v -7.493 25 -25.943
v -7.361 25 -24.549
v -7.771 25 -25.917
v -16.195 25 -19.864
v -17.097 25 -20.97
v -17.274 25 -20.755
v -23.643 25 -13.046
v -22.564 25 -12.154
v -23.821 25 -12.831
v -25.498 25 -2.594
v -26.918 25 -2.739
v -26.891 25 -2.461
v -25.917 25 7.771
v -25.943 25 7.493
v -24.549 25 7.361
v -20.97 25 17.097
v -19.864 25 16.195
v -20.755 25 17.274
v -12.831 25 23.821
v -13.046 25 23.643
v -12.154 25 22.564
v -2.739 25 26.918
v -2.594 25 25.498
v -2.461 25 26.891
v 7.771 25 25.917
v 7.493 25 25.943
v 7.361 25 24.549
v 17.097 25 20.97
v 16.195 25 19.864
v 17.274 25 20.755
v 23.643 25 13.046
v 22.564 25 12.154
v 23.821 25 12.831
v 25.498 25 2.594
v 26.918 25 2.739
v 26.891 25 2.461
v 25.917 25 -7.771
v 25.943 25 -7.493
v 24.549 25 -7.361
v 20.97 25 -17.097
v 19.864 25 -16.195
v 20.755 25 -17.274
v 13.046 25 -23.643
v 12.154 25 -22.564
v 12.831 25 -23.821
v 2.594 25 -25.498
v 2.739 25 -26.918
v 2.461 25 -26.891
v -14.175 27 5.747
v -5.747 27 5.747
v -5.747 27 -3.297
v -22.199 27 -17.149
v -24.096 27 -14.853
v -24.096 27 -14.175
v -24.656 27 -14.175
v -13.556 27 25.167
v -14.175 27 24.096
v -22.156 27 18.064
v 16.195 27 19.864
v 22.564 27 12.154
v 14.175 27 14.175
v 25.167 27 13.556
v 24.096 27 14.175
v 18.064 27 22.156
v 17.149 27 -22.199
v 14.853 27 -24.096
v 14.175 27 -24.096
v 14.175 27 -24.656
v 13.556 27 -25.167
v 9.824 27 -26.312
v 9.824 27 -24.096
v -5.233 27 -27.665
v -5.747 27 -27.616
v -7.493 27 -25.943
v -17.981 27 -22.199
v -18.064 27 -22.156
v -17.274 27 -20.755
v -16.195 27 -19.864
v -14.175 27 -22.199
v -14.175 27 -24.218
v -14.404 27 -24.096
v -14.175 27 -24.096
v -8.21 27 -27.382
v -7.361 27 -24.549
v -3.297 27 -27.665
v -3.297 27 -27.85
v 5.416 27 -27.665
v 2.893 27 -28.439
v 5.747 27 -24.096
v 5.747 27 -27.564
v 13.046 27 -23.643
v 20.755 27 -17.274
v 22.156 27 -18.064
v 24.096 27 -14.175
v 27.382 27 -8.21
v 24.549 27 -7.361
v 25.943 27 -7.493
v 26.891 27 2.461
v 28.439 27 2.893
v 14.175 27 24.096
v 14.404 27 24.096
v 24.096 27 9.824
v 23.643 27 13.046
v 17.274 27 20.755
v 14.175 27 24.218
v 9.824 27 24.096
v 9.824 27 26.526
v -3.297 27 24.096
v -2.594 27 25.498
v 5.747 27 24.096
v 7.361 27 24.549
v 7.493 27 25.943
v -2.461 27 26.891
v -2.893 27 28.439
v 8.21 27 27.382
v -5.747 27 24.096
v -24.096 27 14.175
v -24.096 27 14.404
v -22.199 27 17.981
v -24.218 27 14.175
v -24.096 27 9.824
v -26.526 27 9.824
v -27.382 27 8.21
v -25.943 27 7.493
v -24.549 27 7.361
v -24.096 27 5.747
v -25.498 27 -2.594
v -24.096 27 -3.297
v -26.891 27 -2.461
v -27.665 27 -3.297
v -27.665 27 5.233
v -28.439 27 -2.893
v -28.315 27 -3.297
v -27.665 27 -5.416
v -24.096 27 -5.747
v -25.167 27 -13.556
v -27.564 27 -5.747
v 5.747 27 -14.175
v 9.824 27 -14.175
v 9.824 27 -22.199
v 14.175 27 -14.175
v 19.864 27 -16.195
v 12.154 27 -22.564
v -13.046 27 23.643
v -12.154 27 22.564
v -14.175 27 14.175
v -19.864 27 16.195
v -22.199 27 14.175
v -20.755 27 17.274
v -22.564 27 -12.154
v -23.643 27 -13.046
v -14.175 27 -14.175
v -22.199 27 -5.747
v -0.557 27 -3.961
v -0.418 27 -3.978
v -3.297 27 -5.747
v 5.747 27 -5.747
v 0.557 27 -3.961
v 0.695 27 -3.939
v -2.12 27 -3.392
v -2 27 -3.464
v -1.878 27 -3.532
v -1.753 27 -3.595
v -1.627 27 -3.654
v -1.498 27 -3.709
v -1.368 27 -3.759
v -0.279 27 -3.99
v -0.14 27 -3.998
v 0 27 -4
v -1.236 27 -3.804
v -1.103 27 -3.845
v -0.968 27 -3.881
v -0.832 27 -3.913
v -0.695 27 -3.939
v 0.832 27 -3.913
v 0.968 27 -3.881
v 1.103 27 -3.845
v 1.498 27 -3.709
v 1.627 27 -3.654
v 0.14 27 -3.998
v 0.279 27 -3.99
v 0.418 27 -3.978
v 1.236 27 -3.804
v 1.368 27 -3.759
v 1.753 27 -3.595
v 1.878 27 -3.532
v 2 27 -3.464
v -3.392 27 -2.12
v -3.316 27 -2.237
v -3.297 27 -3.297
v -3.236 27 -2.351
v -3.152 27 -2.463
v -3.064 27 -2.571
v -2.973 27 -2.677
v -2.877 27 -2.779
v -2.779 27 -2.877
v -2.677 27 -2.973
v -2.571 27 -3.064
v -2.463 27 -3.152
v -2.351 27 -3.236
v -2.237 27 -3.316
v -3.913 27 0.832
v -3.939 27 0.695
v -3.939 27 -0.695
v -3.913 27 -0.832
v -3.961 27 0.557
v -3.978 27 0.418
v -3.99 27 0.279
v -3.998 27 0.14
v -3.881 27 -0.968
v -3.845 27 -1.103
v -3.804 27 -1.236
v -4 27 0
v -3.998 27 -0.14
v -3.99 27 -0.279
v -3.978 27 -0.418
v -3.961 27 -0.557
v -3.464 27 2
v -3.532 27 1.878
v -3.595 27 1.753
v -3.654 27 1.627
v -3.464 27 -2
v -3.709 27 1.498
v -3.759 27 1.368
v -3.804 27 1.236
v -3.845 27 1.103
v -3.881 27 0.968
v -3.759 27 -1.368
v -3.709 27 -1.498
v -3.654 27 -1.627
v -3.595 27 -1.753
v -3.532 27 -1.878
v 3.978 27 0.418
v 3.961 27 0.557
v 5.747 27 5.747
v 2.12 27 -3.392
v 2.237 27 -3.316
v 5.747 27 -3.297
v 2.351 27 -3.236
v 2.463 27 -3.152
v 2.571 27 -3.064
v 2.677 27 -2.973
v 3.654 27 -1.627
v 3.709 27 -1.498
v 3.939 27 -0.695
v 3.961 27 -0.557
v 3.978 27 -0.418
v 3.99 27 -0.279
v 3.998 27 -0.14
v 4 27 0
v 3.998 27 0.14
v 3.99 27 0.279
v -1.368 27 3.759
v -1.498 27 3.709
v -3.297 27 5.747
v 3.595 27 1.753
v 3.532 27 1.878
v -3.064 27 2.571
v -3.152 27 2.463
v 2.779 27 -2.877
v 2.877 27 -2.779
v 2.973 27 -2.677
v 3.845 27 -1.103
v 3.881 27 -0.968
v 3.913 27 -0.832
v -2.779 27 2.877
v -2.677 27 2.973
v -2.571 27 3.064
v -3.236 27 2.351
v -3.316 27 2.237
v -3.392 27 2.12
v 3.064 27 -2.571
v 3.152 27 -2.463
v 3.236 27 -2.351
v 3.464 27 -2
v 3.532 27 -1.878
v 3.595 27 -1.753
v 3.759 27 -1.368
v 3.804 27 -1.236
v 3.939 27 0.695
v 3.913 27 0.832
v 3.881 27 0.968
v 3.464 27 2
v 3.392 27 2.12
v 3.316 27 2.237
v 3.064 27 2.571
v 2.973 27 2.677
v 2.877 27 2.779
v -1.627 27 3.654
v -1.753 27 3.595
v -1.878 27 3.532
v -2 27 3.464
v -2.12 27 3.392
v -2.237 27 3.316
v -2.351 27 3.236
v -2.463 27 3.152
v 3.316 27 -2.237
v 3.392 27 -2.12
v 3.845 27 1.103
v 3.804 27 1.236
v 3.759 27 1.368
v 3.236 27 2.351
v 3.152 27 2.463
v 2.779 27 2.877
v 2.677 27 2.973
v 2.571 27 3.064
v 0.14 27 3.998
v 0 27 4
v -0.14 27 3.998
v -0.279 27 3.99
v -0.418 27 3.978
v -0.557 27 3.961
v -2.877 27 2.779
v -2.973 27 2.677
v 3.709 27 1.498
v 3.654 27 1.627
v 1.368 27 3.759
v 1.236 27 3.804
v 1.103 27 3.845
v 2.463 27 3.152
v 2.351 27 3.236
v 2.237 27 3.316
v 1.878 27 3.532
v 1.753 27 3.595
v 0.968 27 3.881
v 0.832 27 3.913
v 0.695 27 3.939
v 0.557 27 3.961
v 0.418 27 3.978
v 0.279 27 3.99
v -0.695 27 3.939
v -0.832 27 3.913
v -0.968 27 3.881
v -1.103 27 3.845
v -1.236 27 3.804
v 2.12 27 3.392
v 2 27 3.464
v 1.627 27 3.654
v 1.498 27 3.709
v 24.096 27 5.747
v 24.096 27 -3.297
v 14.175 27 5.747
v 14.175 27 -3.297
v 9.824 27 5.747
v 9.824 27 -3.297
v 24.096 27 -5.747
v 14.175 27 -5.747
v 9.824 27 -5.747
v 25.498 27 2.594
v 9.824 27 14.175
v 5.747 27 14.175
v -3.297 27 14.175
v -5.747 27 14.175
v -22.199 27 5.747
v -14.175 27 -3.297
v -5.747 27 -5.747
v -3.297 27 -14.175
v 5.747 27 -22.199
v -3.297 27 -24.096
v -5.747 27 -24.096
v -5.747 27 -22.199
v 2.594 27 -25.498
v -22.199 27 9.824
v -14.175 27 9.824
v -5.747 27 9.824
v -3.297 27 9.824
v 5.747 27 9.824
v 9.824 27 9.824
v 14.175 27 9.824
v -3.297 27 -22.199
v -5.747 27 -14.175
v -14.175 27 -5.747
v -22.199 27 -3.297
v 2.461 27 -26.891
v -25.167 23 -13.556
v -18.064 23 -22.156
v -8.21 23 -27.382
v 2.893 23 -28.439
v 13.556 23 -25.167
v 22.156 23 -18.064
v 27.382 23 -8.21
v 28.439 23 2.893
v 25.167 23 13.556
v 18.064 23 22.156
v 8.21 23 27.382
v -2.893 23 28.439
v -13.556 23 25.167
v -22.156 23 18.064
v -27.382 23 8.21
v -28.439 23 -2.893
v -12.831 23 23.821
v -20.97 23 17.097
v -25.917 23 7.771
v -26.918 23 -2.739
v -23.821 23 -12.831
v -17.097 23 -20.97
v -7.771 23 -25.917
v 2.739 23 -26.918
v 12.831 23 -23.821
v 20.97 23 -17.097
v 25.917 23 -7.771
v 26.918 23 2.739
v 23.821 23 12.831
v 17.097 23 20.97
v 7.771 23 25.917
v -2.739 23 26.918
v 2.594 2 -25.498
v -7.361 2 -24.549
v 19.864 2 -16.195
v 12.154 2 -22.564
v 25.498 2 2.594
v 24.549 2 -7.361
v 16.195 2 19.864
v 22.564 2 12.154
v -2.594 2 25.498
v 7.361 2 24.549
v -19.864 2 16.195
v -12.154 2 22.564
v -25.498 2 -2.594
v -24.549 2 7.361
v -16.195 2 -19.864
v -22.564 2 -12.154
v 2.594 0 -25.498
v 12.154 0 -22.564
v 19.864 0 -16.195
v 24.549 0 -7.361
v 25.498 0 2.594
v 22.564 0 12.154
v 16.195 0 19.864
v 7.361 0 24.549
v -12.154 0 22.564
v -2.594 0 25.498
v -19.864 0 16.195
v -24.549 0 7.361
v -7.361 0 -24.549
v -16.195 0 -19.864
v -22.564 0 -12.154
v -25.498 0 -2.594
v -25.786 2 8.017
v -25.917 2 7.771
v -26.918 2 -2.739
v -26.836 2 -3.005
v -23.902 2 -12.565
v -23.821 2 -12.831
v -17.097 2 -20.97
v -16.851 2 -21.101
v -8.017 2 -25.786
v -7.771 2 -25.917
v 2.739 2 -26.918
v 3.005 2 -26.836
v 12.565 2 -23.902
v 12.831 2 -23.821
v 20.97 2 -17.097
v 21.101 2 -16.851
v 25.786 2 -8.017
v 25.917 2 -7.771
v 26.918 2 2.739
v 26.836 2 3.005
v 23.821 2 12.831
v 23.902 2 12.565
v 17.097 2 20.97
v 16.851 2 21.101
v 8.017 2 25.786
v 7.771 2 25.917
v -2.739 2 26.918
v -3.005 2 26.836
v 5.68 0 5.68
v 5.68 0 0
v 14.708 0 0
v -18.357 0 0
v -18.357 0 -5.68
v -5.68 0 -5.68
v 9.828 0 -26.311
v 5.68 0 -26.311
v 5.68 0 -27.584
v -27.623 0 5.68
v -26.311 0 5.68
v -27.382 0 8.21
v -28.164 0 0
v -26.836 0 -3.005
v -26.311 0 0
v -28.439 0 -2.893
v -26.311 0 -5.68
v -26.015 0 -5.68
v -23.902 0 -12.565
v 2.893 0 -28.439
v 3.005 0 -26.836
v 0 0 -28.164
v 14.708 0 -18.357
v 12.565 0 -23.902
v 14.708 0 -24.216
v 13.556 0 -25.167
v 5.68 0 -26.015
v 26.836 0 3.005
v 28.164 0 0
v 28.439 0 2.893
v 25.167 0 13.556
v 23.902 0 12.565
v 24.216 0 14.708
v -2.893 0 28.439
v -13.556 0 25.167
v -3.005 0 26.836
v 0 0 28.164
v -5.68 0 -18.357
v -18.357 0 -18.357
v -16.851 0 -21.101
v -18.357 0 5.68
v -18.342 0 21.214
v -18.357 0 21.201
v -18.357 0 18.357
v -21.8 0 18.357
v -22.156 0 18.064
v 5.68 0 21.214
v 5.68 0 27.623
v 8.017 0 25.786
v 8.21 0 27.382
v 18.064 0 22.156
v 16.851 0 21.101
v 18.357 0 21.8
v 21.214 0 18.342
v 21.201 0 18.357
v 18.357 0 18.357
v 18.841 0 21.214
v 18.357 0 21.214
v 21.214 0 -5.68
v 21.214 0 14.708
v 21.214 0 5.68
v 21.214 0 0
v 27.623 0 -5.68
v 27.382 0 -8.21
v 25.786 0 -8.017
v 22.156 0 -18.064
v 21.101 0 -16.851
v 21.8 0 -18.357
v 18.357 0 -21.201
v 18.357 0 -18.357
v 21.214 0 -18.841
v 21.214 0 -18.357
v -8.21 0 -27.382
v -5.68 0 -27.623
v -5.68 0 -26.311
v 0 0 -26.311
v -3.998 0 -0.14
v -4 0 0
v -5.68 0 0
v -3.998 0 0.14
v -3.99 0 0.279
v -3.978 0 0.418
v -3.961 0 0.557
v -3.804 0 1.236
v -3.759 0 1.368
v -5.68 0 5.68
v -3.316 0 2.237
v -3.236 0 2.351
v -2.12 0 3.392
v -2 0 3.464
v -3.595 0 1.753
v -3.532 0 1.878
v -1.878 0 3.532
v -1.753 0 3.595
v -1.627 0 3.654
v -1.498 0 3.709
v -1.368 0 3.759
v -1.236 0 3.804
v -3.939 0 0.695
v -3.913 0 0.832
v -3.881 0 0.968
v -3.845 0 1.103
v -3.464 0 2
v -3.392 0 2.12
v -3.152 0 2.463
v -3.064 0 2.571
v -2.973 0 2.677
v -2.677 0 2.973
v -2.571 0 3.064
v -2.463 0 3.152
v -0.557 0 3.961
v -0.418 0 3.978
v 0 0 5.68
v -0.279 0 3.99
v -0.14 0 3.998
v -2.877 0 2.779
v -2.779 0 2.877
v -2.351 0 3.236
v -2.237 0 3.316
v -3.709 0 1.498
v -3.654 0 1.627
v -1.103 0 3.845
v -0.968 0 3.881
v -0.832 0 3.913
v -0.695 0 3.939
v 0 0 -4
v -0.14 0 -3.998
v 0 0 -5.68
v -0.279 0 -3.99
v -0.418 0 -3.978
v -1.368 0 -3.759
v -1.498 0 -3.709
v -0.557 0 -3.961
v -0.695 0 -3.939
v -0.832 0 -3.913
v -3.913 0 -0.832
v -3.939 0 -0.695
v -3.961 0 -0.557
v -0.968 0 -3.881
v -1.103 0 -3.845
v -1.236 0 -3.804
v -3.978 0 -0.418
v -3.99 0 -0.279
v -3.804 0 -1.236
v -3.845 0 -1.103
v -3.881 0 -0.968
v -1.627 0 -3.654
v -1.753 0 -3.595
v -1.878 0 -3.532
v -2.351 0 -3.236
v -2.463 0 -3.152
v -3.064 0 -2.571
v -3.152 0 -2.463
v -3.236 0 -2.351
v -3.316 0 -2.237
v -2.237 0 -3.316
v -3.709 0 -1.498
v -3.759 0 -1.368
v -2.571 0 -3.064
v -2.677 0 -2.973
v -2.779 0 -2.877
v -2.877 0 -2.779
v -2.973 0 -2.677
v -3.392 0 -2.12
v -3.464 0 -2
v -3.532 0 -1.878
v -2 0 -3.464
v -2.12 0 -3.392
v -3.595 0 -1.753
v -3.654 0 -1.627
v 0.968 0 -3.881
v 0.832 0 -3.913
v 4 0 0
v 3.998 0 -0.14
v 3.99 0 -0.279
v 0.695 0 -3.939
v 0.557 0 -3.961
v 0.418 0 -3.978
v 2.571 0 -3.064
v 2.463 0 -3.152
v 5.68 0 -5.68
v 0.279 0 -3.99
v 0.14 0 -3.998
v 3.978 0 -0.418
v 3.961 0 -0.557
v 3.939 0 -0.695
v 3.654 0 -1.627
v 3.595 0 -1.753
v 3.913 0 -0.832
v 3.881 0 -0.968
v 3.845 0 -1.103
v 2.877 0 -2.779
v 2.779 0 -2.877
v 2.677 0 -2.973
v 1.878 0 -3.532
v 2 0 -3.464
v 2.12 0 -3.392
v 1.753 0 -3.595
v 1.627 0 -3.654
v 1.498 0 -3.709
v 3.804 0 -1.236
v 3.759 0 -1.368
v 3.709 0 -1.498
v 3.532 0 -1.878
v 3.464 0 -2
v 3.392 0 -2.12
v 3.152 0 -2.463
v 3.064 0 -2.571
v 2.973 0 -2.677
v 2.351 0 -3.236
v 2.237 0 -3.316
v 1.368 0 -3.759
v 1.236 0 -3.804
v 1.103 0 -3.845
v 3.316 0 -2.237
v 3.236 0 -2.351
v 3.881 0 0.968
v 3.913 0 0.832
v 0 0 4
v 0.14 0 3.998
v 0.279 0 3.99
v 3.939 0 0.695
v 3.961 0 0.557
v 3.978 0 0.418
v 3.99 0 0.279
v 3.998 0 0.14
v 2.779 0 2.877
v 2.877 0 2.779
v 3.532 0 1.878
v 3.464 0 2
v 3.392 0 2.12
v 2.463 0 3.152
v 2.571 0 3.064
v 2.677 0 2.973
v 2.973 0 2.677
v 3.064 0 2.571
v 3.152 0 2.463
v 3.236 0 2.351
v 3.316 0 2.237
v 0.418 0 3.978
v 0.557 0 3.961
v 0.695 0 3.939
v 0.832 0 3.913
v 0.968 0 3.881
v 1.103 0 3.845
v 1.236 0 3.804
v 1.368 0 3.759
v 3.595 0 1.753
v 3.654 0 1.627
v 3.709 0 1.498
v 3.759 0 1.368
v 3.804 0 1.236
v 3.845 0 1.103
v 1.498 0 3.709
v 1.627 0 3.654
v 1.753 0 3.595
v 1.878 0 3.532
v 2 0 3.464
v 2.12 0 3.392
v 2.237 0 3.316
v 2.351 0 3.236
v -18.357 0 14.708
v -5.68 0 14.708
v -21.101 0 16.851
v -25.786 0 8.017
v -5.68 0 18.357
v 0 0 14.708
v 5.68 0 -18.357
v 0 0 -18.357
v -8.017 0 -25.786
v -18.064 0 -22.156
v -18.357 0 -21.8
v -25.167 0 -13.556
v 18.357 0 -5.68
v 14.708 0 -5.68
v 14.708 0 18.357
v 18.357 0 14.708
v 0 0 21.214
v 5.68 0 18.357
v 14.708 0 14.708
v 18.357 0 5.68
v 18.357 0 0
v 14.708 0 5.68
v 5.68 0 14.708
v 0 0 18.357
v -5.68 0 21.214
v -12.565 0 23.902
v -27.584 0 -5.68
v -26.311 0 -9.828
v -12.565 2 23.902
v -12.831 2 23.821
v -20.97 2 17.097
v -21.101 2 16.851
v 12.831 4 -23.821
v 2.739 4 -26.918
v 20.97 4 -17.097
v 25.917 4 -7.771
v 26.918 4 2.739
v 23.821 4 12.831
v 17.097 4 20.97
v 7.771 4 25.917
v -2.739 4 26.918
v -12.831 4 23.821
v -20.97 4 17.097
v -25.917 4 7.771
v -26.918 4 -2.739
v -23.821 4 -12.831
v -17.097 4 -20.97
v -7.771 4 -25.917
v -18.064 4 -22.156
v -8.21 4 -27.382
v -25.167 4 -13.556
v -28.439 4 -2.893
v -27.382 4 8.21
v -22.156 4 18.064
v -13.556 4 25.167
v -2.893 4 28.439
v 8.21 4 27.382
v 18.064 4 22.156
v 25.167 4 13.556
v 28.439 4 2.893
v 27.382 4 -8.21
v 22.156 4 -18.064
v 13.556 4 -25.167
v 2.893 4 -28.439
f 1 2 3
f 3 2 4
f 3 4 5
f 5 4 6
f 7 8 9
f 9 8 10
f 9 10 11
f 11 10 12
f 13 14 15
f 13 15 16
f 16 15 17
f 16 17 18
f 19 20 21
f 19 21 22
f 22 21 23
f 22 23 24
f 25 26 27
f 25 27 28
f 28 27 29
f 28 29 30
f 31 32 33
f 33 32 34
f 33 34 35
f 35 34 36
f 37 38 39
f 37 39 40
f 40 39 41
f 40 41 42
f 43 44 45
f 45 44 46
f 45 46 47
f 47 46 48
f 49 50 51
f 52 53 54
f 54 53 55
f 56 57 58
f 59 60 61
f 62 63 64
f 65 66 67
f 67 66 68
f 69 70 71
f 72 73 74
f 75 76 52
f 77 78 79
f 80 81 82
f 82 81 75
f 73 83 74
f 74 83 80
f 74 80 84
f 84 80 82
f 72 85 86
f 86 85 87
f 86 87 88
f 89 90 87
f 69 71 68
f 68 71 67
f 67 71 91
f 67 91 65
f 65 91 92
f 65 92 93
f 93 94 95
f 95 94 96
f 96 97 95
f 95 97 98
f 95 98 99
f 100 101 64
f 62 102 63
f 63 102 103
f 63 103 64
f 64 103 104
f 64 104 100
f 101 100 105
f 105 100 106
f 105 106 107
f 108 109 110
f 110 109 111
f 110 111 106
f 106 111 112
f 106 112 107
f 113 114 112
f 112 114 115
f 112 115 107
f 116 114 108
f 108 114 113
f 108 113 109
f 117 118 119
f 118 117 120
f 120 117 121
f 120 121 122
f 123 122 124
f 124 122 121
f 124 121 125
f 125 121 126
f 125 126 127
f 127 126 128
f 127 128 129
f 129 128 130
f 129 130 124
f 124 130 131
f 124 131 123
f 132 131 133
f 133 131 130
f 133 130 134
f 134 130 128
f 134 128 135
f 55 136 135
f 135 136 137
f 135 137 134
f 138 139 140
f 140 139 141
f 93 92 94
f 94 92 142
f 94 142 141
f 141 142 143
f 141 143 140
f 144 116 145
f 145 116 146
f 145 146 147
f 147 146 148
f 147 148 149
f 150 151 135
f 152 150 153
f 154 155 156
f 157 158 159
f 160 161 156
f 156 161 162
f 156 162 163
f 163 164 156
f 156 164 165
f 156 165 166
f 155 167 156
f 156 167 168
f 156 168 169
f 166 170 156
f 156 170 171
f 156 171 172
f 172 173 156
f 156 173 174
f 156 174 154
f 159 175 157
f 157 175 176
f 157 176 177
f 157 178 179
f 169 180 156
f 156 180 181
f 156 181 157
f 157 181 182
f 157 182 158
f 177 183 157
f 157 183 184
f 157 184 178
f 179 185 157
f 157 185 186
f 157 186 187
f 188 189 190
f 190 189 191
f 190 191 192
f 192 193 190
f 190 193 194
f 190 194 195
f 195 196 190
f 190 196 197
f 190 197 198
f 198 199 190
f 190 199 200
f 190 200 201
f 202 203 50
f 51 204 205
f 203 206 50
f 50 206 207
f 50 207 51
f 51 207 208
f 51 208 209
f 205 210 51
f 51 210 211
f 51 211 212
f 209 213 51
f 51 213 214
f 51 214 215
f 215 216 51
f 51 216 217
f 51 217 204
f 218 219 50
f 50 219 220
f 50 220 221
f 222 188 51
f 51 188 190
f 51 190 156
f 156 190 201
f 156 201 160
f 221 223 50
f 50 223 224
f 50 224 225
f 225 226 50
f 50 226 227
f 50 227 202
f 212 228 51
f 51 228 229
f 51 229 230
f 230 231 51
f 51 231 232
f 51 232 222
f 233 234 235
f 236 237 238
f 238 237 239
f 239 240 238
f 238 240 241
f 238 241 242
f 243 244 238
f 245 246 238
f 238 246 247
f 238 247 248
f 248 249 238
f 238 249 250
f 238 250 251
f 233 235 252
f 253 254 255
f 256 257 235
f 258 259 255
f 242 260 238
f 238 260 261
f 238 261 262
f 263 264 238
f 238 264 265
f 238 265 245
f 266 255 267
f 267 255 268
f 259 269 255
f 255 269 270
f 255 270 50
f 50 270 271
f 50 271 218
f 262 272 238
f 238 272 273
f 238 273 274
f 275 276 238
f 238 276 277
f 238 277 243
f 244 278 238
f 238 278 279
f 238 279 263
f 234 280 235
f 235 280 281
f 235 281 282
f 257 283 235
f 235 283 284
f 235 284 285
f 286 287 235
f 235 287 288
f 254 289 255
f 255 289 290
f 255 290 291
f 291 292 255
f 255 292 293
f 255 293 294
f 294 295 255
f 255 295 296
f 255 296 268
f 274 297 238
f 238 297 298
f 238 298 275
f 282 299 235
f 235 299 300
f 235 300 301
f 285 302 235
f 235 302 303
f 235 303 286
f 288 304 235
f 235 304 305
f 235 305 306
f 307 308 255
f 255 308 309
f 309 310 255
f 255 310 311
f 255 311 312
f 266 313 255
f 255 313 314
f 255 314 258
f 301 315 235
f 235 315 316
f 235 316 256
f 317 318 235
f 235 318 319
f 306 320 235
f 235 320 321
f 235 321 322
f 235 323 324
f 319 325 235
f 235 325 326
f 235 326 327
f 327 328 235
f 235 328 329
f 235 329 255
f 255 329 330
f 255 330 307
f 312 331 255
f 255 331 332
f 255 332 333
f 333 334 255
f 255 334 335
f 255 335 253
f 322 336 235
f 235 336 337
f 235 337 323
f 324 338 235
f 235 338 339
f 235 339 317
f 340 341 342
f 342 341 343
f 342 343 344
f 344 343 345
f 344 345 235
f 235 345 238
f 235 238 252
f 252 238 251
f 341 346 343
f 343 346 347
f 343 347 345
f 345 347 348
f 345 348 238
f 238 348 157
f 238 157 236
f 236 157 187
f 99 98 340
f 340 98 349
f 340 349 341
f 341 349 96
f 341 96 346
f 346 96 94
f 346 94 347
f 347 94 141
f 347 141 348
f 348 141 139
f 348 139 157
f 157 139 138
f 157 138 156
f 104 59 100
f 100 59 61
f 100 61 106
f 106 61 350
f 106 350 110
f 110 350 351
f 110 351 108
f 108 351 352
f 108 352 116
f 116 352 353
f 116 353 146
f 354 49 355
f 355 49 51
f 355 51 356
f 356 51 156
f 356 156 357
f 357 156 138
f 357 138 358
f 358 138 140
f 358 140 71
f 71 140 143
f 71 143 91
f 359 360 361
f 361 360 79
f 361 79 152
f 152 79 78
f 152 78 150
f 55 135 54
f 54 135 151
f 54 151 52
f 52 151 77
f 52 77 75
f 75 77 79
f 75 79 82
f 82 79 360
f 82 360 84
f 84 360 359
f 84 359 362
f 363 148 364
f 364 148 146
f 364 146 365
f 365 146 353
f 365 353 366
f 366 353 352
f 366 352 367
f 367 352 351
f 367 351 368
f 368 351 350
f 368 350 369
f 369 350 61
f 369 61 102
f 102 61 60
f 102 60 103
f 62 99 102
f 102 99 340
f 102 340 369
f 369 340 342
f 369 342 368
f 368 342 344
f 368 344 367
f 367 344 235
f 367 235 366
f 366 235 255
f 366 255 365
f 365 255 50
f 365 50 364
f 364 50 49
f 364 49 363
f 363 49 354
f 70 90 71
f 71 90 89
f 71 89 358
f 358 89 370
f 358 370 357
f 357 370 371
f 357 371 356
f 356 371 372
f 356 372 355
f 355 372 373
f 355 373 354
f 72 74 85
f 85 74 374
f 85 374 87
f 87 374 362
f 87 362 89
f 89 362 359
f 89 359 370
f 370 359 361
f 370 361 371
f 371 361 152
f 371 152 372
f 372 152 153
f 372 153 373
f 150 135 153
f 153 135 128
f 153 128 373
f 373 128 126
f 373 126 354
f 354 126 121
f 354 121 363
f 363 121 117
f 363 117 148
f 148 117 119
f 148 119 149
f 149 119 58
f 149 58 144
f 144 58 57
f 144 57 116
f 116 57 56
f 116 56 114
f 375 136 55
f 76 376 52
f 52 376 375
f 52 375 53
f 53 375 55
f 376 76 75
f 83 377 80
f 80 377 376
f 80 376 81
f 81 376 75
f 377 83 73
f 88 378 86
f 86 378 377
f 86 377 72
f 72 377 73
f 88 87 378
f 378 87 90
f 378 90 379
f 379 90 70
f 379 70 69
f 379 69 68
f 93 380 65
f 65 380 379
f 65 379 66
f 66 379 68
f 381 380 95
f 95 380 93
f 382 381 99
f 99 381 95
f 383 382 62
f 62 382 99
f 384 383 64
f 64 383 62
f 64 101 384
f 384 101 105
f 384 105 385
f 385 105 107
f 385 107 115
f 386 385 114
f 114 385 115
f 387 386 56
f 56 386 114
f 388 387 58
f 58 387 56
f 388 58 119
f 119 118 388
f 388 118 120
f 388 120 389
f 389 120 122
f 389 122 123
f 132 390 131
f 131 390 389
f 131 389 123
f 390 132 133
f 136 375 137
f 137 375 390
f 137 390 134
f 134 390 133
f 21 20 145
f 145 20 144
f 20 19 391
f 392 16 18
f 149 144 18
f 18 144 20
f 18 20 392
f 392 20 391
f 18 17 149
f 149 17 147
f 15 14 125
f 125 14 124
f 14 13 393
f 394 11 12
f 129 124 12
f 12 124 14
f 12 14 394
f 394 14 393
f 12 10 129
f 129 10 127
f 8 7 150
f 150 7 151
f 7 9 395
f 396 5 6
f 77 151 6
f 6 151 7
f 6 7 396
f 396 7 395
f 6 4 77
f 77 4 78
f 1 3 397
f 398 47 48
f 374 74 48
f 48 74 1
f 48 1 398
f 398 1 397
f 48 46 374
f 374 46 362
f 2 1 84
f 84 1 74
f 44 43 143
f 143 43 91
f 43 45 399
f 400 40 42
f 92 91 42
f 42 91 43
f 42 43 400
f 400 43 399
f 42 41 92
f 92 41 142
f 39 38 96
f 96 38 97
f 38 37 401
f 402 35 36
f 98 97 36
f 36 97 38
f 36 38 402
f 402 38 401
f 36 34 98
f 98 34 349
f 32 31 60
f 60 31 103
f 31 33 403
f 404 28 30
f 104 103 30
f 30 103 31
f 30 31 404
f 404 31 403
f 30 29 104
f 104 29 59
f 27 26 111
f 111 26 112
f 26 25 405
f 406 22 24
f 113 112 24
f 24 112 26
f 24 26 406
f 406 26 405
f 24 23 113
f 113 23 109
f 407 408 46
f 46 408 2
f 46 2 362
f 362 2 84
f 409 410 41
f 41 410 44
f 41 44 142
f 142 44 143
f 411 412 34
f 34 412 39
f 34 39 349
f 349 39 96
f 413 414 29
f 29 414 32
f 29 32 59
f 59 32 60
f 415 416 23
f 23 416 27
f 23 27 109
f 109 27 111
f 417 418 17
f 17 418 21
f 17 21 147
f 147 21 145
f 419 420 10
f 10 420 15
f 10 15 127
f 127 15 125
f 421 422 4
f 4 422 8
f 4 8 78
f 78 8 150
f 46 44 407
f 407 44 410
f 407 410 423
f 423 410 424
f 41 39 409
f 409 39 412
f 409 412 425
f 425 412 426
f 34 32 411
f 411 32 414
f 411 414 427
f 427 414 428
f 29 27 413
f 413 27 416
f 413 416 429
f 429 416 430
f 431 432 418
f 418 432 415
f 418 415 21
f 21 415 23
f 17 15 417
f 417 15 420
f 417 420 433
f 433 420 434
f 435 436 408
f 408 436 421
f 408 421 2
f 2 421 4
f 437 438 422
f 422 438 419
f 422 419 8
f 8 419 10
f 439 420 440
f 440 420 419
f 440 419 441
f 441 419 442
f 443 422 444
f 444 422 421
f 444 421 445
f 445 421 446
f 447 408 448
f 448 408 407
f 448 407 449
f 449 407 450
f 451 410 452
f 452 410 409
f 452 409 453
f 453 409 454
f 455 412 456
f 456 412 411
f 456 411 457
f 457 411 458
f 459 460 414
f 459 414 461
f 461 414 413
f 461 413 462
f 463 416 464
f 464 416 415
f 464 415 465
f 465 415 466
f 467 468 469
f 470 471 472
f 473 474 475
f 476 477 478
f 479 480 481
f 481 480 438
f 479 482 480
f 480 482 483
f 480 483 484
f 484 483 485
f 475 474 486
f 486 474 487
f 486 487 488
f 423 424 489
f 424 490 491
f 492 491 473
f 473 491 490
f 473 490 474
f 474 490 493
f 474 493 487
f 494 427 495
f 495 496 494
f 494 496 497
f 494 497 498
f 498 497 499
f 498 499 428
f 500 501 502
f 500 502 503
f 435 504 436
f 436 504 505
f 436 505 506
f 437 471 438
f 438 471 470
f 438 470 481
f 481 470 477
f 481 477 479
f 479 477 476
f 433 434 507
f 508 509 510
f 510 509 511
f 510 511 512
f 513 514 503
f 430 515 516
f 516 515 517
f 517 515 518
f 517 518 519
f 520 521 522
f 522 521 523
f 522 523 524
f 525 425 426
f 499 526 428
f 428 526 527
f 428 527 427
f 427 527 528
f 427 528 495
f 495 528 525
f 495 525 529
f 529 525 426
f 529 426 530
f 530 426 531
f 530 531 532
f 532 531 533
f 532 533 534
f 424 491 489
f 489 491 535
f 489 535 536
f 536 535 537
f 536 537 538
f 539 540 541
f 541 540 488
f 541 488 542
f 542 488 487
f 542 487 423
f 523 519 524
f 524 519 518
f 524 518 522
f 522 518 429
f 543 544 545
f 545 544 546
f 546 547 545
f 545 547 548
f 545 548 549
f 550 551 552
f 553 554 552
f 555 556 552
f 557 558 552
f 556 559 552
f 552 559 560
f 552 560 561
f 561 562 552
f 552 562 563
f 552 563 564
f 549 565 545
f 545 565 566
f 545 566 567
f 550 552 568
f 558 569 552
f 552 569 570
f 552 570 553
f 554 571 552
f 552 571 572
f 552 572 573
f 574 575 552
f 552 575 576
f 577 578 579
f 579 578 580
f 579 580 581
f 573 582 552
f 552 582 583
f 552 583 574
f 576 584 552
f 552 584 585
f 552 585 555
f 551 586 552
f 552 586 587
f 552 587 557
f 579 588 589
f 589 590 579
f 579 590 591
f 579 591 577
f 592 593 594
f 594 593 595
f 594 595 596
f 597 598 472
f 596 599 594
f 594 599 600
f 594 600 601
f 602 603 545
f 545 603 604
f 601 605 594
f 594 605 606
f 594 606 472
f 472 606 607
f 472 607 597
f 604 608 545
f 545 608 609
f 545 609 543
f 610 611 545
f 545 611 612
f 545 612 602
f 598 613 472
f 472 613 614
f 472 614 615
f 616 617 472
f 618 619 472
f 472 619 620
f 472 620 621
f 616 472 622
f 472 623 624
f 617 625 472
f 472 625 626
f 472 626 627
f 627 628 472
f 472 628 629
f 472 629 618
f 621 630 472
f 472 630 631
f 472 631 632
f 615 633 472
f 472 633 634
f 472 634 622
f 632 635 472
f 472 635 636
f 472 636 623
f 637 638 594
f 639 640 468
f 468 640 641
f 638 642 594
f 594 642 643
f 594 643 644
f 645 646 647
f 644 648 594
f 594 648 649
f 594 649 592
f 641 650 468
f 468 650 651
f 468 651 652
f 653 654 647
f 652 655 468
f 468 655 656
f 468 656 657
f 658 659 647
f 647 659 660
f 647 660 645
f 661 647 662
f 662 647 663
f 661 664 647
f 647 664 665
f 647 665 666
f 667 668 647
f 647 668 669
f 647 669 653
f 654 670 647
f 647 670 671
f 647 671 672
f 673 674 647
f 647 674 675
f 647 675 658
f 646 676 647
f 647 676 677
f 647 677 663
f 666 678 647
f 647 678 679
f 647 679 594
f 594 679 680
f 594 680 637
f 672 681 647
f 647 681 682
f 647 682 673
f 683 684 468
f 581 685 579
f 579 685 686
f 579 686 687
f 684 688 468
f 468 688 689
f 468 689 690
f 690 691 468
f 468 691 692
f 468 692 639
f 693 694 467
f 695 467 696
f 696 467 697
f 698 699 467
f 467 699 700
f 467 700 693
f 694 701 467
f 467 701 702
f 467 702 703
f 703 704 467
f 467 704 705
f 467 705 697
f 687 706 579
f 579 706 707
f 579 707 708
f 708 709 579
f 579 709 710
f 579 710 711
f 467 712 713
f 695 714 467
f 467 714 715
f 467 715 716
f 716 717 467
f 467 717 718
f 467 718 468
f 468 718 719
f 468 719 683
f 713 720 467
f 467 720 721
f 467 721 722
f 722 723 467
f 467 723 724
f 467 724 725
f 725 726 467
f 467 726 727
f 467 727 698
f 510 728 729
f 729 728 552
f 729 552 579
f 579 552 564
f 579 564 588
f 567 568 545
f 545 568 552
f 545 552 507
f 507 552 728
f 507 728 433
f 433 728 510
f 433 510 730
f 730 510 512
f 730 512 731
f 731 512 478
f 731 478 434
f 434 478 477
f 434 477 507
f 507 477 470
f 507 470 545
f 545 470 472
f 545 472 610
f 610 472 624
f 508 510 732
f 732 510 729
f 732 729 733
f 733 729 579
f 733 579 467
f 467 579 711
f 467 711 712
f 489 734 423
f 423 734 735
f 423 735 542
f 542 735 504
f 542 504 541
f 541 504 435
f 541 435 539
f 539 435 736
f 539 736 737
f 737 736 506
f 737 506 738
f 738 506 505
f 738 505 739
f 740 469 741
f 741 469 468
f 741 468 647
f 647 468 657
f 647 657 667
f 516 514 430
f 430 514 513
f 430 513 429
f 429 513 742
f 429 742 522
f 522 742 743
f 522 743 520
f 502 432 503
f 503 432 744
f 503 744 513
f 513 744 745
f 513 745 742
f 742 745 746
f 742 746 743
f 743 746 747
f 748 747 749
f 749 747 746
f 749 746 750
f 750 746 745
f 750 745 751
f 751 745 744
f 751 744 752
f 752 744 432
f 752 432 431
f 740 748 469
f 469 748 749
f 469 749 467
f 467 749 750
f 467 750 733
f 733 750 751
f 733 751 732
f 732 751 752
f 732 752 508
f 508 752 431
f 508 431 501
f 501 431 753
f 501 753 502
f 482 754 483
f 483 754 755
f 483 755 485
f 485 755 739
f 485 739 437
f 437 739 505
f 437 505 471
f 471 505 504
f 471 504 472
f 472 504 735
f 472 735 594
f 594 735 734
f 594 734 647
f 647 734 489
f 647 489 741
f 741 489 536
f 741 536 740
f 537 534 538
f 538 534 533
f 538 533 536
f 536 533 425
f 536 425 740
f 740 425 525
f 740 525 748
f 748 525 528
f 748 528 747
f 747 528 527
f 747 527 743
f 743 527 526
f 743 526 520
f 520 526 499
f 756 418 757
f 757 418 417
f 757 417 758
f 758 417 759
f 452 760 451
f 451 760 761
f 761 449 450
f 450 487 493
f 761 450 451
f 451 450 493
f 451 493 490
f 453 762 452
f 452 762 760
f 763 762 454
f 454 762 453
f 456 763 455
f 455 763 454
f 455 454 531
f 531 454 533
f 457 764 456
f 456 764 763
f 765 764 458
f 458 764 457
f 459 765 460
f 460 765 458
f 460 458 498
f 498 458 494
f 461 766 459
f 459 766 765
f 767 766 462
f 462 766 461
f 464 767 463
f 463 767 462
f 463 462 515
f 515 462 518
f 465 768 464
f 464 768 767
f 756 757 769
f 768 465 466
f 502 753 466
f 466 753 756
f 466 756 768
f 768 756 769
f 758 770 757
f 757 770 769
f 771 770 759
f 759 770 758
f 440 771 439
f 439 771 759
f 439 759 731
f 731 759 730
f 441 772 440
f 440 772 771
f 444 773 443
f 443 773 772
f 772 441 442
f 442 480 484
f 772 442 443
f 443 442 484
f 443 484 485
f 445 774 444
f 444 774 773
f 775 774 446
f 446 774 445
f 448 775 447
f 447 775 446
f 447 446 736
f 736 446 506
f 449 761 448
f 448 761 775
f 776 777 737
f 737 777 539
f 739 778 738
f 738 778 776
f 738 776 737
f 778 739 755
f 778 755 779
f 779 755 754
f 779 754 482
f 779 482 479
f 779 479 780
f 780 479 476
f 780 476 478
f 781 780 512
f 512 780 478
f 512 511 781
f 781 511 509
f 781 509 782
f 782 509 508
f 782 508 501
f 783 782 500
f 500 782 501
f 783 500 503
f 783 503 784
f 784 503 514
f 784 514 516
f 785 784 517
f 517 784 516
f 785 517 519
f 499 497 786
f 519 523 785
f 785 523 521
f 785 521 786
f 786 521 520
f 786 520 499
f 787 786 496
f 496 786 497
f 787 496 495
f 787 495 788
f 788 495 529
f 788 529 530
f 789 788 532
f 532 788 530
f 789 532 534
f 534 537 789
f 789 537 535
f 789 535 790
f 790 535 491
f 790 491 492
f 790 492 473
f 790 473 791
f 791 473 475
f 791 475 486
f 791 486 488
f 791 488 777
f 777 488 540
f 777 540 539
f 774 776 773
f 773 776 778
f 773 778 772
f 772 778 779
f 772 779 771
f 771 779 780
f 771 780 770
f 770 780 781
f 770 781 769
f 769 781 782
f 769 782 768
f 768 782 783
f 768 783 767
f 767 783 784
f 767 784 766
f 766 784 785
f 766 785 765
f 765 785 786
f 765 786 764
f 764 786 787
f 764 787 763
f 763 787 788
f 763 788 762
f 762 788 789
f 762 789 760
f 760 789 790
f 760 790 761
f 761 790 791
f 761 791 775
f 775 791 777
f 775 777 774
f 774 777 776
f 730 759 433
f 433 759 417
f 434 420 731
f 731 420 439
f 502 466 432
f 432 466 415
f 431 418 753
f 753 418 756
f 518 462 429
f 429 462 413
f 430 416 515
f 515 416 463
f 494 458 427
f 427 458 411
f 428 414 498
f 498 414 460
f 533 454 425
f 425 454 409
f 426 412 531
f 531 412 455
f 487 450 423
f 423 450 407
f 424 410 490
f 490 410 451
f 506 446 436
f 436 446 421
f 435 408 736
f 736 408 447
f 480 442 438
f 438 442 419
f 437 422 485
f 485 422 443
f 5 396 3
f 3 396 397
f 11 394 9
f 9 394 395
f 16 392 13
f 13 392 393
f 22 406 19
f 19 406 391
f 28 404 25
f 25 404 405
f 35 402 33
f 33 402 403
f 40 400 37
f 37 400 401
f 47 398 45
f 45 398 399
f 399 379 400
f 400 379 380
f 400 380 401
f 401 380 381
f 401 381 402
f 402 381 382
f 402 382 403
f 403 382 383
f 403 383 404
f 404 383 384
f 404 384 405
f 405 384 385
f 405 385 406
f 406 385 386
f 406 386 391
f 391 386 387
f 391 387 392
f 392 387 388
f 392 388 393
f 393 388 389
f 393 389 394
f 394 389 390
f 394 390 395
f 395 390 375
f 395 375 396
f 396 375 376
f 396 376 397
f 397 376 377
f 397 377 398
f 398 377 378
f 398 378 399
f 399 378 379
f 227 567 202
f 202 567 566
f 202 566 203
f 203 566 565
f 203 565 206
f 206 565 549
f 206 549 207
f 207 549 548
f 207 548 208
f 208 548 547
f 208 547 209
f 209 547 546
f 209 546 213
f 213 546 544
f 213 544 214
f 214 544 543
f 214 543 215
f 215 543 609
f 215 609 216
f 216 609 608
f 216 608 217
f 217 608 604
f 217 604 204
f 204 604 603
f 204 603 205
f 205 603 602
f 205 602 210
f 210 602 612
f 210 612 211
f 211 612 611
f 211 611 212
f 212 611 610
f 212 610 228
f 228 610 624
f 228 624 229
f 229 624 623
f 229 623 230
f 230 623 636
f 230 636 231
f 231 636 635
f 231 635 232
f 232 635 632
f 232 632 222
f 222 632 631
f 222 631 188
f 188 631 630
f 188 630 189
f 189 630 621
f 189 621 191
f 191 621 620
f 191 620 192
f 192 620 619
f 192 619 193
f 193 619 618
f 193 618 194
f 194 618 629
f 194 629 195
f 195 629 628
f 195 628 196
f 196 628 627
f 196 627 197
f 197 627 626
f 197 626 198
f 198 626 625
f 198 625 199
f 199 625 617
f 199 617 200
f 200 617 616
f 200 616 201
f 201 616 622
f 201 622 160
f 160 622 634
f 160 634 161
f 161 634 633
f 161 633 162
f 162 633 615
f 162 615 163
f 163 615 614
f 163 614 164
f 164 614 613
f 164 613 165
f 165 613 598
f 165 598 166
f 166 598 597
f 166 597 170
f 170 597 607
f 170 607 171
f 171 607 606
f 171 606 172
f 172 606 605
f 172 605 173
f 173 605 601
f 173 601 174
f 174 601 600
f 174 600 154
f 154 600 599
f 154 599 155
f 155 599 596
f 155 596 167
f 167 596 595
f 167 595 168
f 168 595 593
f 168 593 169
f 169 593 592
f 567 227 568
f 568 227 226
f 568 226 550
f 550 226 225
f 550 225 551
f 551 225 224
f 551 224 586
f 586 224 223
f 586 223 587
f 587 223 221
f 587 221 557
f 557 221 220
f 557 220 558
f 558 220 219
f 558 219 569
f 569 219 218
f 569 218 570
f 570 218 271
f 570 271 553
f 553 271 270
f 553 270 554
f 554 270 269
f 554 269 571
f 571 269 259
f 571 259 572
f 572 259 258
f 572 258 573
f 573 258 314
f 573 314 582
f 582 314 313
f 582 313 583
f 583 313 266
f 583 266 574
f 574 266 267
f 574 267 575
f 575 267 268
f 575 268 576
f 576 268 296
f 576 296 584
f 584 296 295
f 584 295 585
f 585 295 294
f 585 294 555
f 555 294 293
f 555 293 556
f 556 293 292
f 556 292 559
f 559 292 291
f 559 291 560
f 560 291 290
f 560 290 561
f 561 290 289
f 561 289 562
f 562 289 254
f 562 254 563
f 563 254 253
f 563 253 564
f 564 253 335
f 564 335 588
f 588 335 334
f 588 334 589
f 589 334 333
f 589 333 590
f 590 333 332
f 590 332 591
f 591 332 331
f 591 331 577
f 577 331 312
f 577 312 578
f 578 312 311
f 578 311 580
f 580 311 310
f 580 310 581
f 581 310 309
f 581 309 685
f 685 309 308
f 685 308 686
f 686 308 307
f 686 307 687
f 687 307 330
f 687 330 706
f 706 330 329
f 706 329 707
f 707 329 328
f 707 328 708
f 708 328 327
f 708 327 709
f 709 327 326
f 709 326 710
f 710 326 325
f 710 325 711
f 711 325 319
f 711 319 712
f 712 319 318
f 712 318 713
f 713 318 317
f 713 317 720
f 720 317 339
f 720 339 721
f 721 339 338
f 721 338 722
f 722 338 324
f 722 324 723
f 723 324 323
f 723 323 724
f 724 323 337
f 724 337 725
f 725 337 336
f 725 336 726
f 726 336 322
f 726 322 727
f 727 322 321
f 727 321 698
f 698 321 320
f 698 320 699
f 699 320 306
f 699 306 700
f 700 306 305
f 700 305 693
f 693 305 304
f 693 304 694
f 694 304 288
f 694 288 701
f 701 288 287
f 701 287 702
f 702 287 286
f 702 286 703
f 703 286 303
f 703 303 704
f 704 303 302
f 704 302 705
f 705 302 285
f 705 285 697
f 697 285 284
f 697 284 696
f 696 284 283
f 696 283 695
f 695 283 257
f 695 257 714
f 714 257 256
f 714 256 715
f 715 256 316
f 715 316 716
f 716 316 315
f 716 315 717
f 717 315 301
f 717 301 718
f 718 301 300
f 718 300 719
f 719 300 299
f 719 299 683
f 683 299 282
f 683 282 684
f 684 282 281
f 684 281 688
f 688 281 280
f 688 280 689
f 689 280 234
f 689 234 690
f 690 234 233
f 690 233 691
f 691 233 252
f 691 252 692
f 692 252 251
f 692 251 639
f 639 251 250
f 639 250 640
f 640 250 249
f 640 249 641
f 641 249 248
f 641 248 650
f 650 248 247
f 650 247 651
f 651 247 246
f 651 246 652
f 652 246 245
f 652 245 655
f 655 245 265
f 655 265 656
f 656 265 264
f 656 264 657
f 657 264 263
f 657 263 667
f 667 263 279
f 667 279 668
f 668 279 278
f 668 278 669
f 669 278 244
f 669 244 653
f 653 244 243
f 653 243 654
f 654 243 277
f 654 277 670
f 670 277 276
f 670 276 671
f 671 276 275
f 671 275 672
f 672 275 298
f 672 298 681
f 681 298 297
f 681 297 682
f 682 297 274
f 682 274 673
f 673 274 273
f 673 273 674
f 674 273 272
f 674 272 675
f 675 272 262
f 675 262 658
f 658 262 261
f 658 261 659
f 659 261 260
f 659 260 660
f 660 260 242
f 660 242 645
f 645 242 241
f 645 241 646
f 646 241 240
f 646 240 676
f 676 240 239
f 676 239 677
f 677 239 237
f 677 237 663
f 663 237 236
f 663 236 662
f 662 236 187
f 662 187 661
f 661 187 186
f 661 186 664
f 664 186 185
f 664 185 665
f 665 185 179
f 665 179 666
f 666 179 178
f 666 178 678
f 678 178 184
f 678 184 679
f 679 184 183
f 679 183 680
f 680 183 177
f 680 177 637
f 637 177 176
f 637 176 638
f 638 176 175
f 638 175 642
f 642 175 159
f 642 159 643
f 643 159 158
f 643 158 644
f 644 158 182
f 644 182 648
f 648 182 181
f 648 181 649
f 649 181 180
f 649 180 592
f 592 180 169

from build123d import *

# Parameters (mm, degrees)
BOSS_EXTRUDE1_DEPTH     = 27
BOSS_EXTRUDE2_DEPTH     = 2
BOSS_EXTRUDE3_DEPTH     = 4
BOSS_EXTRUDE4_DEPTH     = 2
CUT_EXTRUDE1_DEPTH      = 49.441415403
CUT_EXTRUDE1_DEPTH_BACK = 49.441415403
BOSS_EXTRUDE8_DEPTH     = 2
BOSS_EXTRUDE9_DEPTH     = 4
CUT_EXTRUDE2_DEPTH      = 49.441415403
CUT_EXTRUDE2_DEPTH_BACK = 49.441415403
SKETCH5_R               = 4


with BuildPart() as part:
    # Sketch2 → Boss-Extrude1 (new body)
    with BuildSketch(Plane(origin=(0, 0, 0), x_dir=(1, 0, 0), z_dir=(0, 1, 0))):
        Polygon((22.563885141, -12.154202836), (25.497523714, -2.594194221), (24.549395438, 7.360756948), (19.863844247, 16.195099597), (12.154202836, 22.563885141), (2.594194221, 25.497523714), (-7.360756948, 24.549395438), (-16.195099597, 19.863844247), (-22.563885141, 12.154202836), (-25.497523714, 2.594194221), (-24.549395438, -7.360756948), (-19.863844247, -16.195099597), (-12.154202836, -22.563885141), (-2.594194221, -25.497523714), (7.360756948, -24.549395438), (16.195099597, -19.863844247), align=None)
    extrude(amount=BOSS_EXTRUDE1_DEPTH)



with BuildPart() as body_2:
    # Sketch3 → Boss-Extrude2 (new body)
    with BuildSketch(Plane(origin=(0, 27, 0), x_dir=(1, 0, 0), z_dir=(0, 1, 0))):
        Polygon((2.893484263, 28.439151941), (-8.20996139, 27.38163889), (-18.063514845, 22.155519532), (-25.167061911, 13.556423167), (-28.439151941, 2.893484263), (-27.38163889, -8.20996139), (-22.155519532, -18.063514845), (-13.556423167, -25.167061911), (-2.893484263, -28.439151941), (8.20996139, -27.38163889), (18.063514845, -22.155519532), (25.167061911, -13.556423167), (28.439151941, -2.893484263), (27.38163889, 8.20996139), (22.155519532, 18.063514845), (13.556423167, 25.167061911), align=None)
        Polygon((-7.360756948, 24.549395438), (-7.493494906, 25.943088602), (2.461456262, 26.891216878), (2.594194221, 25.497523714), align=None, mode=Mode.SUBTRACT)
        Polygon((-23.643234938, 13.045832812), (-17.274449394, 20.755474224), (-16.195099597, 19.863844247), (-22.563885141, 12.154202836), align=None, mode=Mode.SUBTRACT)
        Polygon((-25.943088602, -7.493494906), (-26.891216878, 2.461456262), (-25.497523714, 2.594194221), (-24.549395438, -7.360756948), align=None, mode=Mode.SUBTRACT)
        Polygon((-13.045832812, -23.643234938), (-20.755474224, -17.274449394), (-19.863844247, -16.195099597), (-12.154202836, -22.563885141), align=None, mode=Mode.SUBTRACT)
        Polygon((7.493494906, -25.943088602), (-2.461456262, -26.891216878), (-2.594194221, -25.497523714), (7.360756948, -24.549395438), align=None, mode=Mode.SUBTRACT)
        Polygon((23.643234938, -13.045832812), (17.274449394, -20.755474224), (16.195099597, -19.863844247), (22.563885141, -12.154202836), align=None, mode=Mode.SUBTRACT)
        Polygon((25.943088602, 7.493494906), (26.891216878, -2.461456262), (25.497523714, -2.594194221), (24.549395438, 7.360756948), align=None, mode=Mode.SUBTRACT)
        Polygon((13.045832812, 23.643234938), (20.755474224, 17.274449394), (19.863844247, 16.195099597), (12.154202836, 22.563885141), align=None, mode=Mode.SUBTRACT)
    extrude(amount=-BOSS_EXTRUDE2_DEPTH)


with BuildPart() as body_3:
    # Sketch4 → Boss-Extrude3 (new body)
    with BuildSketch(Plane(origin=(0, 0, 0), x_dir=(-1, 0, 0), z_dir=(0, -1, 0))):
        Polygon((8.20996139, 27.38163889), (-2.893484263, 28.439151941), (-13.556423167, 25.167061911), (-22.155519532, 18.063514845), (-27.38163889, 8.20996139), (-28.439151941, -2.893484263), (-25.167061911, -13.556423167), (-18.063514845, -22.155519532), (-8.20996139, -27.38163889), (2.893484263, -28.439151941), (13.556423167, -25.167061911), (22.155519532, -18.063514845), (27.38163889, -8.20996139), (28.439151941, 2.893484263), (25.167061911, 13.556423167), (18.063514845, 22.155519532), align=None)
        Polygon((-20.970170247, 17.097093165), (-12.831136789, 23.820591168), (-2.738679069, 26.9176201), (7.770717713, 25.91668538), (17.097093165, 20.970170247), (23.820591168, 12.831136789), (26.9176201, 2.738679069), (25.91668538, -7.770717713), (20.970170247, -17.097093165), (12.831136789, -23.820591168), (2.738679069, -26.9176201), (-7.770717713, -25.91668538), (-17.097093165, -20.970170247), (-23.820591168, -12.831136789), (-26.9176201, -2.738679069), (-25.91668538, 7.770717713), align=None, mode=Mode.SUBTRACT)
    extrude(amount=-BOSS_EXTRUDE3_DEPTH)


with BuildPart() as part_1:
    add(part.part)

    add(body_3.part)  # Boss-Extrude4 merges body 3
    # Sketch4<4> → Boss-Extrude4 (add)
    with BuildSketch(Plane(origin=(0, 0, 0), x_dir=(-1, 0, 0), z_dir=(0, -1, 0))):
        Polygon((-2.738679069, 26.9176201), (-12.831136789, 23.820591168), (-20.970170247, 17.097093165), (-25.91668538, 7.770717713), (-26.9176201, -2.738679069), (-23.820591168, -12.831136789), (-17.097093165, -20.970170247), (-7.770717713, -25.91668538), (2.738679069, -26.9176201), (12.831136789, -23.820591168), (20.970170247, -17.097093165), (25.91668538, -7.770717713), (26.9176201, 2.738679069), (23.820591168, 12.831136789), (17.097093165, 20.970170247), (7.770717713, 25.91668538), align=None)
        Polygon((-12.154202836, 22.563885141), (-2.594194221, 25.497523714), (7.360756948, 24.549395438), (16.195099597, 19.863844247), (22.563885141, 12.154202836), (25.497523714, 2.594194221), (24.549395438, -7.360756948), (19.863844247, -16.195099597), (12.154202836, -22.563885141), (2.594194221, -25.497523714), (-7.360756948, -24.549395438), (-16.195099597, -19.863844247), (-22.563885141, -12.154202836), (-25.497523714, -2.594194221), (-24.549395438, 7.360756948), (-19.863844247, 16.195099597), align=None, mode=Mode.SUBTRACT)
    extrude(amount=-BOSS_EXTRUDE4_DEPTH)


with BuildPart() as cut_extrude1_tool:
    # Sketch3<3> → Cut-Extrude1 (new, two sides: drawn at the far end of the back side and taken through both)
    with BuildSketch(Plane(origin=(0, 27, 0), x_dir=(1, 0, 0), z_dir=(0, 1, 0)).offset(-CUT_EXTRUDE1_DEPTH_BACK)):
        Polygon((-16.195099597, 19.863844247), (-7.360756948, 24.549395438), (-8.016734114, 25.786203409), (-16.851076763, 21.100652218), align=None)
        Polygon((3.004903621, 26.835924921), (2.594194221, 25.497523714), (12.154202836, 22.563885141), (12.564912236, 23.902286347), align=None)
        Polygon((-25.497523714, 2.594194221), (-22.563885141, 12.154202836), (-23.902286347, 12.564912236), (-26.835924921, 3.004903621), align=None)
        Polygon((21.100652218, 16.851076763), (19.863844247, 16.195099597), (24.549395438, 7.360756948), (25.786203409, 8.016734114), align=None)
        Polygon((-19.863844247, -16.195099597), (-24.549395438, -7.360756948), (-25.786203409, -8.016734114), (-21.100652218, -16.851076763), align=None)
        Polygon((26.835924921, -3.004903621), (25.497523714, -2.594194221), (22.563885141, -12.154202836), (23.902286347, -12.564912236), align=None)
        Polygon((-2.594194221, -25.497523714), (-12.154202836, -22.563885141), (-12.564912236, -23.902286347), (-3.004903621, -26.835924921), align=None)
        Polygon((16.851076763, -21.100652218), (16.195099597, -19.863844247), (7.360756948, -24.549395438), (8.016734114, -25.786203409), align=None)
    extrude(amount=CUT_EXTRUDE1_DEPTH + CUT_EXTRUDE1_DEPTH_BACK)


with BuildPart() as part_2:
    add(part_1.part)

    # Cut-Extrude1: cut by cut_extrude1_tool
    add(cut_extrude1_tool.part, mode=Mode.SUBTRACT)



with BuildPart() as body_2_1:
    add(body_2.part)

    # Cut-Extrude1: cut by cut_extrude1_tool
    add(cut_extrude1_tool.part, mode=Mode.SUBTRACT)


with BuildPart() as part_3:
    add(part_2.part)

    add(body_2_1.part)  # Boss-Extrude8 merges body 2
    # Sketch3<5> → Boss-Extrude8 (add)
    with BuildSketch(Plane(origin=(0, 27, 0), x_dir=(1, 0, 0), z_dir=(0, 1, 0))):
        Polygon((-16.195099597, 19.863844247), (-7.360756948, 24.549395438), (-8.016734114, 25.786203409), (-16.851076763, 21.100652218), align=None)
        Polygon((3.004903621, 26.835924921), (2.594194221, 25.497523714), (12.154202836, 22.563885141), (12.564912236, 23.902286347), align=None)
        Polygon((-25.497523714, 2.594194221), (-22.563885141, 12.154202836), (-23.902286347, 12.564912236), (-26.835924921, 3.004903621), align=None)
        Polygon((21.100652218, 16.851076763), (19.863844247, 16.195099597), (24.549395438, 7.360756948), (25.786203409, 8.016734114), align=None)
        Polygon((-19.863844247, -16.195099597), (-24.549395438, -7.360756948), (-25.786203409, -8.016734114), (-21.100652218, -16.851076763), align=None)
        Polygon((26.835924921, -3.004903621), (25.497523714, -2.594194221), (22.563885141, -12.154202836), (23.902286347, -12.564912236), align=None)
        Polygon((-2.594194221, -25.497523714), (-12.154202836, -22.563885141), (-12.564912236, -23.902286347), (-3.004903621, -26.835924921), align=None)
        Polygon((16.851076763, -21.100652218), (16.195099597, -19.863844247), (7.360756948, -24.549395438), (8.016734114, -25.786203409), align=None)
    extrude(amount=-BOSS_EXTRUDE8_DEPTH)

    # Sketch3<6> → Boss-Extrude9 (add)
    with BuildSketch(Plane(origin=(0, 27, 0), x_dir=(1, 0, 0), z_dir=(0, 1, 0))):
        Polygon((2.893484263, 28.439151941), (-8.20996139, 27.38163889), (-18.063514845, 22.155519532), (-25.167061911, 13.556423167), (-28.439151941, 2.893484263), (-27.38163889, -8.20996139), (-22.155519532, -18.063514845), (-13.556423167, -25.167061911), (-2.893484263, -28.439151941), (8.20996139, -27.38163889), (18.063514845, -22.155519532), (25.167061911, -13.556423167), (28.439151941, -2.893484263), (27.38163889, 8.20996139), (22.155519532, 18.063514845), (13.556423167, 25.167061911), align=None)
        Polygon((-7.770717713, 25.91668538), (-7.493494906, 25.943088602), (-4.248833717, 26.252116237), (2.461456262, 26.891216878), (2.738679069, 26.9176201), (3.004903621, 26.835924921), (12.564912236, 23.902286347), (12.831136789, 23.820591168), (13.045832812, 23.643234938), (20.755474224, 17.274449394), (20.970170247, 17.097093165), (21.100652218, 16.851076763), (25.786203409, 8.016734114), (25.91668538, 7.770717713), (25.943088602, 7.493494906), (26.891216878, -2.461456262), (26.9176201, -2.738679069), (26.835924921, -3.004903621), (23.902286347, -12.564912236), (23.820591168, -12.831136789), (23.643234938, -13.045832812), (17.274449394, -20.755474224), (17.097093165, -20.970170247), (16.851076763, -21.100652218), (8.016734114, -25.786203409), (7.770717713, -25.91668538), (7.493494906, -25.943088602), (-2.461456262, -26.891216878), (-2.738679069, -26.9176201), (-3.004903621, -26.835924921), (-12.564912236, -23.902286347), (-12.831136789, -23.820591168), (-13.045832812, -23.643234938), (-20.755474224, -17.274449394), (-20.970170247, -17.097093165), (-21.100652218, -16.851076763), (-25.786203409, -8.016734114), (-25.91668538, -7.770717713), (-25.943088602, -7.493494906), (-26.891216878, 2.461456262), (-26.9176201, 2.738679069), (-26.835924921, 3.004903621), (-23.902286347, 12.564912236), (-23.820591168, 12.831136789), (-23.643234938, 13.045832812), (-17.274449394, 20.755474224), (-17.097093165, 20.970170247), (-16.851076763, 21.100652218), (-8.016734114, 25.786203409), align=None, mode=Mode.SUBTRACT)
    extrude(amount=-BOSS_EXTRUDE9_DEPTH)

    # Sketch5 → Cut-Extrude2 (cut, two sides: drawn at the far end of the back side and taken through both)
    with BuildSketch(Plane.XZ.offset(-CUT_EXTRUDE2_DEPTH_BACK)):
        Circle(SKETCH5_R)
    extrude(amount=CUT_EXTRUDE2_DEPTH + CUT_EXTRUDE2_DEPTH_BACK, mode=Mode.SUBTRACT)


solid = part_3.part
